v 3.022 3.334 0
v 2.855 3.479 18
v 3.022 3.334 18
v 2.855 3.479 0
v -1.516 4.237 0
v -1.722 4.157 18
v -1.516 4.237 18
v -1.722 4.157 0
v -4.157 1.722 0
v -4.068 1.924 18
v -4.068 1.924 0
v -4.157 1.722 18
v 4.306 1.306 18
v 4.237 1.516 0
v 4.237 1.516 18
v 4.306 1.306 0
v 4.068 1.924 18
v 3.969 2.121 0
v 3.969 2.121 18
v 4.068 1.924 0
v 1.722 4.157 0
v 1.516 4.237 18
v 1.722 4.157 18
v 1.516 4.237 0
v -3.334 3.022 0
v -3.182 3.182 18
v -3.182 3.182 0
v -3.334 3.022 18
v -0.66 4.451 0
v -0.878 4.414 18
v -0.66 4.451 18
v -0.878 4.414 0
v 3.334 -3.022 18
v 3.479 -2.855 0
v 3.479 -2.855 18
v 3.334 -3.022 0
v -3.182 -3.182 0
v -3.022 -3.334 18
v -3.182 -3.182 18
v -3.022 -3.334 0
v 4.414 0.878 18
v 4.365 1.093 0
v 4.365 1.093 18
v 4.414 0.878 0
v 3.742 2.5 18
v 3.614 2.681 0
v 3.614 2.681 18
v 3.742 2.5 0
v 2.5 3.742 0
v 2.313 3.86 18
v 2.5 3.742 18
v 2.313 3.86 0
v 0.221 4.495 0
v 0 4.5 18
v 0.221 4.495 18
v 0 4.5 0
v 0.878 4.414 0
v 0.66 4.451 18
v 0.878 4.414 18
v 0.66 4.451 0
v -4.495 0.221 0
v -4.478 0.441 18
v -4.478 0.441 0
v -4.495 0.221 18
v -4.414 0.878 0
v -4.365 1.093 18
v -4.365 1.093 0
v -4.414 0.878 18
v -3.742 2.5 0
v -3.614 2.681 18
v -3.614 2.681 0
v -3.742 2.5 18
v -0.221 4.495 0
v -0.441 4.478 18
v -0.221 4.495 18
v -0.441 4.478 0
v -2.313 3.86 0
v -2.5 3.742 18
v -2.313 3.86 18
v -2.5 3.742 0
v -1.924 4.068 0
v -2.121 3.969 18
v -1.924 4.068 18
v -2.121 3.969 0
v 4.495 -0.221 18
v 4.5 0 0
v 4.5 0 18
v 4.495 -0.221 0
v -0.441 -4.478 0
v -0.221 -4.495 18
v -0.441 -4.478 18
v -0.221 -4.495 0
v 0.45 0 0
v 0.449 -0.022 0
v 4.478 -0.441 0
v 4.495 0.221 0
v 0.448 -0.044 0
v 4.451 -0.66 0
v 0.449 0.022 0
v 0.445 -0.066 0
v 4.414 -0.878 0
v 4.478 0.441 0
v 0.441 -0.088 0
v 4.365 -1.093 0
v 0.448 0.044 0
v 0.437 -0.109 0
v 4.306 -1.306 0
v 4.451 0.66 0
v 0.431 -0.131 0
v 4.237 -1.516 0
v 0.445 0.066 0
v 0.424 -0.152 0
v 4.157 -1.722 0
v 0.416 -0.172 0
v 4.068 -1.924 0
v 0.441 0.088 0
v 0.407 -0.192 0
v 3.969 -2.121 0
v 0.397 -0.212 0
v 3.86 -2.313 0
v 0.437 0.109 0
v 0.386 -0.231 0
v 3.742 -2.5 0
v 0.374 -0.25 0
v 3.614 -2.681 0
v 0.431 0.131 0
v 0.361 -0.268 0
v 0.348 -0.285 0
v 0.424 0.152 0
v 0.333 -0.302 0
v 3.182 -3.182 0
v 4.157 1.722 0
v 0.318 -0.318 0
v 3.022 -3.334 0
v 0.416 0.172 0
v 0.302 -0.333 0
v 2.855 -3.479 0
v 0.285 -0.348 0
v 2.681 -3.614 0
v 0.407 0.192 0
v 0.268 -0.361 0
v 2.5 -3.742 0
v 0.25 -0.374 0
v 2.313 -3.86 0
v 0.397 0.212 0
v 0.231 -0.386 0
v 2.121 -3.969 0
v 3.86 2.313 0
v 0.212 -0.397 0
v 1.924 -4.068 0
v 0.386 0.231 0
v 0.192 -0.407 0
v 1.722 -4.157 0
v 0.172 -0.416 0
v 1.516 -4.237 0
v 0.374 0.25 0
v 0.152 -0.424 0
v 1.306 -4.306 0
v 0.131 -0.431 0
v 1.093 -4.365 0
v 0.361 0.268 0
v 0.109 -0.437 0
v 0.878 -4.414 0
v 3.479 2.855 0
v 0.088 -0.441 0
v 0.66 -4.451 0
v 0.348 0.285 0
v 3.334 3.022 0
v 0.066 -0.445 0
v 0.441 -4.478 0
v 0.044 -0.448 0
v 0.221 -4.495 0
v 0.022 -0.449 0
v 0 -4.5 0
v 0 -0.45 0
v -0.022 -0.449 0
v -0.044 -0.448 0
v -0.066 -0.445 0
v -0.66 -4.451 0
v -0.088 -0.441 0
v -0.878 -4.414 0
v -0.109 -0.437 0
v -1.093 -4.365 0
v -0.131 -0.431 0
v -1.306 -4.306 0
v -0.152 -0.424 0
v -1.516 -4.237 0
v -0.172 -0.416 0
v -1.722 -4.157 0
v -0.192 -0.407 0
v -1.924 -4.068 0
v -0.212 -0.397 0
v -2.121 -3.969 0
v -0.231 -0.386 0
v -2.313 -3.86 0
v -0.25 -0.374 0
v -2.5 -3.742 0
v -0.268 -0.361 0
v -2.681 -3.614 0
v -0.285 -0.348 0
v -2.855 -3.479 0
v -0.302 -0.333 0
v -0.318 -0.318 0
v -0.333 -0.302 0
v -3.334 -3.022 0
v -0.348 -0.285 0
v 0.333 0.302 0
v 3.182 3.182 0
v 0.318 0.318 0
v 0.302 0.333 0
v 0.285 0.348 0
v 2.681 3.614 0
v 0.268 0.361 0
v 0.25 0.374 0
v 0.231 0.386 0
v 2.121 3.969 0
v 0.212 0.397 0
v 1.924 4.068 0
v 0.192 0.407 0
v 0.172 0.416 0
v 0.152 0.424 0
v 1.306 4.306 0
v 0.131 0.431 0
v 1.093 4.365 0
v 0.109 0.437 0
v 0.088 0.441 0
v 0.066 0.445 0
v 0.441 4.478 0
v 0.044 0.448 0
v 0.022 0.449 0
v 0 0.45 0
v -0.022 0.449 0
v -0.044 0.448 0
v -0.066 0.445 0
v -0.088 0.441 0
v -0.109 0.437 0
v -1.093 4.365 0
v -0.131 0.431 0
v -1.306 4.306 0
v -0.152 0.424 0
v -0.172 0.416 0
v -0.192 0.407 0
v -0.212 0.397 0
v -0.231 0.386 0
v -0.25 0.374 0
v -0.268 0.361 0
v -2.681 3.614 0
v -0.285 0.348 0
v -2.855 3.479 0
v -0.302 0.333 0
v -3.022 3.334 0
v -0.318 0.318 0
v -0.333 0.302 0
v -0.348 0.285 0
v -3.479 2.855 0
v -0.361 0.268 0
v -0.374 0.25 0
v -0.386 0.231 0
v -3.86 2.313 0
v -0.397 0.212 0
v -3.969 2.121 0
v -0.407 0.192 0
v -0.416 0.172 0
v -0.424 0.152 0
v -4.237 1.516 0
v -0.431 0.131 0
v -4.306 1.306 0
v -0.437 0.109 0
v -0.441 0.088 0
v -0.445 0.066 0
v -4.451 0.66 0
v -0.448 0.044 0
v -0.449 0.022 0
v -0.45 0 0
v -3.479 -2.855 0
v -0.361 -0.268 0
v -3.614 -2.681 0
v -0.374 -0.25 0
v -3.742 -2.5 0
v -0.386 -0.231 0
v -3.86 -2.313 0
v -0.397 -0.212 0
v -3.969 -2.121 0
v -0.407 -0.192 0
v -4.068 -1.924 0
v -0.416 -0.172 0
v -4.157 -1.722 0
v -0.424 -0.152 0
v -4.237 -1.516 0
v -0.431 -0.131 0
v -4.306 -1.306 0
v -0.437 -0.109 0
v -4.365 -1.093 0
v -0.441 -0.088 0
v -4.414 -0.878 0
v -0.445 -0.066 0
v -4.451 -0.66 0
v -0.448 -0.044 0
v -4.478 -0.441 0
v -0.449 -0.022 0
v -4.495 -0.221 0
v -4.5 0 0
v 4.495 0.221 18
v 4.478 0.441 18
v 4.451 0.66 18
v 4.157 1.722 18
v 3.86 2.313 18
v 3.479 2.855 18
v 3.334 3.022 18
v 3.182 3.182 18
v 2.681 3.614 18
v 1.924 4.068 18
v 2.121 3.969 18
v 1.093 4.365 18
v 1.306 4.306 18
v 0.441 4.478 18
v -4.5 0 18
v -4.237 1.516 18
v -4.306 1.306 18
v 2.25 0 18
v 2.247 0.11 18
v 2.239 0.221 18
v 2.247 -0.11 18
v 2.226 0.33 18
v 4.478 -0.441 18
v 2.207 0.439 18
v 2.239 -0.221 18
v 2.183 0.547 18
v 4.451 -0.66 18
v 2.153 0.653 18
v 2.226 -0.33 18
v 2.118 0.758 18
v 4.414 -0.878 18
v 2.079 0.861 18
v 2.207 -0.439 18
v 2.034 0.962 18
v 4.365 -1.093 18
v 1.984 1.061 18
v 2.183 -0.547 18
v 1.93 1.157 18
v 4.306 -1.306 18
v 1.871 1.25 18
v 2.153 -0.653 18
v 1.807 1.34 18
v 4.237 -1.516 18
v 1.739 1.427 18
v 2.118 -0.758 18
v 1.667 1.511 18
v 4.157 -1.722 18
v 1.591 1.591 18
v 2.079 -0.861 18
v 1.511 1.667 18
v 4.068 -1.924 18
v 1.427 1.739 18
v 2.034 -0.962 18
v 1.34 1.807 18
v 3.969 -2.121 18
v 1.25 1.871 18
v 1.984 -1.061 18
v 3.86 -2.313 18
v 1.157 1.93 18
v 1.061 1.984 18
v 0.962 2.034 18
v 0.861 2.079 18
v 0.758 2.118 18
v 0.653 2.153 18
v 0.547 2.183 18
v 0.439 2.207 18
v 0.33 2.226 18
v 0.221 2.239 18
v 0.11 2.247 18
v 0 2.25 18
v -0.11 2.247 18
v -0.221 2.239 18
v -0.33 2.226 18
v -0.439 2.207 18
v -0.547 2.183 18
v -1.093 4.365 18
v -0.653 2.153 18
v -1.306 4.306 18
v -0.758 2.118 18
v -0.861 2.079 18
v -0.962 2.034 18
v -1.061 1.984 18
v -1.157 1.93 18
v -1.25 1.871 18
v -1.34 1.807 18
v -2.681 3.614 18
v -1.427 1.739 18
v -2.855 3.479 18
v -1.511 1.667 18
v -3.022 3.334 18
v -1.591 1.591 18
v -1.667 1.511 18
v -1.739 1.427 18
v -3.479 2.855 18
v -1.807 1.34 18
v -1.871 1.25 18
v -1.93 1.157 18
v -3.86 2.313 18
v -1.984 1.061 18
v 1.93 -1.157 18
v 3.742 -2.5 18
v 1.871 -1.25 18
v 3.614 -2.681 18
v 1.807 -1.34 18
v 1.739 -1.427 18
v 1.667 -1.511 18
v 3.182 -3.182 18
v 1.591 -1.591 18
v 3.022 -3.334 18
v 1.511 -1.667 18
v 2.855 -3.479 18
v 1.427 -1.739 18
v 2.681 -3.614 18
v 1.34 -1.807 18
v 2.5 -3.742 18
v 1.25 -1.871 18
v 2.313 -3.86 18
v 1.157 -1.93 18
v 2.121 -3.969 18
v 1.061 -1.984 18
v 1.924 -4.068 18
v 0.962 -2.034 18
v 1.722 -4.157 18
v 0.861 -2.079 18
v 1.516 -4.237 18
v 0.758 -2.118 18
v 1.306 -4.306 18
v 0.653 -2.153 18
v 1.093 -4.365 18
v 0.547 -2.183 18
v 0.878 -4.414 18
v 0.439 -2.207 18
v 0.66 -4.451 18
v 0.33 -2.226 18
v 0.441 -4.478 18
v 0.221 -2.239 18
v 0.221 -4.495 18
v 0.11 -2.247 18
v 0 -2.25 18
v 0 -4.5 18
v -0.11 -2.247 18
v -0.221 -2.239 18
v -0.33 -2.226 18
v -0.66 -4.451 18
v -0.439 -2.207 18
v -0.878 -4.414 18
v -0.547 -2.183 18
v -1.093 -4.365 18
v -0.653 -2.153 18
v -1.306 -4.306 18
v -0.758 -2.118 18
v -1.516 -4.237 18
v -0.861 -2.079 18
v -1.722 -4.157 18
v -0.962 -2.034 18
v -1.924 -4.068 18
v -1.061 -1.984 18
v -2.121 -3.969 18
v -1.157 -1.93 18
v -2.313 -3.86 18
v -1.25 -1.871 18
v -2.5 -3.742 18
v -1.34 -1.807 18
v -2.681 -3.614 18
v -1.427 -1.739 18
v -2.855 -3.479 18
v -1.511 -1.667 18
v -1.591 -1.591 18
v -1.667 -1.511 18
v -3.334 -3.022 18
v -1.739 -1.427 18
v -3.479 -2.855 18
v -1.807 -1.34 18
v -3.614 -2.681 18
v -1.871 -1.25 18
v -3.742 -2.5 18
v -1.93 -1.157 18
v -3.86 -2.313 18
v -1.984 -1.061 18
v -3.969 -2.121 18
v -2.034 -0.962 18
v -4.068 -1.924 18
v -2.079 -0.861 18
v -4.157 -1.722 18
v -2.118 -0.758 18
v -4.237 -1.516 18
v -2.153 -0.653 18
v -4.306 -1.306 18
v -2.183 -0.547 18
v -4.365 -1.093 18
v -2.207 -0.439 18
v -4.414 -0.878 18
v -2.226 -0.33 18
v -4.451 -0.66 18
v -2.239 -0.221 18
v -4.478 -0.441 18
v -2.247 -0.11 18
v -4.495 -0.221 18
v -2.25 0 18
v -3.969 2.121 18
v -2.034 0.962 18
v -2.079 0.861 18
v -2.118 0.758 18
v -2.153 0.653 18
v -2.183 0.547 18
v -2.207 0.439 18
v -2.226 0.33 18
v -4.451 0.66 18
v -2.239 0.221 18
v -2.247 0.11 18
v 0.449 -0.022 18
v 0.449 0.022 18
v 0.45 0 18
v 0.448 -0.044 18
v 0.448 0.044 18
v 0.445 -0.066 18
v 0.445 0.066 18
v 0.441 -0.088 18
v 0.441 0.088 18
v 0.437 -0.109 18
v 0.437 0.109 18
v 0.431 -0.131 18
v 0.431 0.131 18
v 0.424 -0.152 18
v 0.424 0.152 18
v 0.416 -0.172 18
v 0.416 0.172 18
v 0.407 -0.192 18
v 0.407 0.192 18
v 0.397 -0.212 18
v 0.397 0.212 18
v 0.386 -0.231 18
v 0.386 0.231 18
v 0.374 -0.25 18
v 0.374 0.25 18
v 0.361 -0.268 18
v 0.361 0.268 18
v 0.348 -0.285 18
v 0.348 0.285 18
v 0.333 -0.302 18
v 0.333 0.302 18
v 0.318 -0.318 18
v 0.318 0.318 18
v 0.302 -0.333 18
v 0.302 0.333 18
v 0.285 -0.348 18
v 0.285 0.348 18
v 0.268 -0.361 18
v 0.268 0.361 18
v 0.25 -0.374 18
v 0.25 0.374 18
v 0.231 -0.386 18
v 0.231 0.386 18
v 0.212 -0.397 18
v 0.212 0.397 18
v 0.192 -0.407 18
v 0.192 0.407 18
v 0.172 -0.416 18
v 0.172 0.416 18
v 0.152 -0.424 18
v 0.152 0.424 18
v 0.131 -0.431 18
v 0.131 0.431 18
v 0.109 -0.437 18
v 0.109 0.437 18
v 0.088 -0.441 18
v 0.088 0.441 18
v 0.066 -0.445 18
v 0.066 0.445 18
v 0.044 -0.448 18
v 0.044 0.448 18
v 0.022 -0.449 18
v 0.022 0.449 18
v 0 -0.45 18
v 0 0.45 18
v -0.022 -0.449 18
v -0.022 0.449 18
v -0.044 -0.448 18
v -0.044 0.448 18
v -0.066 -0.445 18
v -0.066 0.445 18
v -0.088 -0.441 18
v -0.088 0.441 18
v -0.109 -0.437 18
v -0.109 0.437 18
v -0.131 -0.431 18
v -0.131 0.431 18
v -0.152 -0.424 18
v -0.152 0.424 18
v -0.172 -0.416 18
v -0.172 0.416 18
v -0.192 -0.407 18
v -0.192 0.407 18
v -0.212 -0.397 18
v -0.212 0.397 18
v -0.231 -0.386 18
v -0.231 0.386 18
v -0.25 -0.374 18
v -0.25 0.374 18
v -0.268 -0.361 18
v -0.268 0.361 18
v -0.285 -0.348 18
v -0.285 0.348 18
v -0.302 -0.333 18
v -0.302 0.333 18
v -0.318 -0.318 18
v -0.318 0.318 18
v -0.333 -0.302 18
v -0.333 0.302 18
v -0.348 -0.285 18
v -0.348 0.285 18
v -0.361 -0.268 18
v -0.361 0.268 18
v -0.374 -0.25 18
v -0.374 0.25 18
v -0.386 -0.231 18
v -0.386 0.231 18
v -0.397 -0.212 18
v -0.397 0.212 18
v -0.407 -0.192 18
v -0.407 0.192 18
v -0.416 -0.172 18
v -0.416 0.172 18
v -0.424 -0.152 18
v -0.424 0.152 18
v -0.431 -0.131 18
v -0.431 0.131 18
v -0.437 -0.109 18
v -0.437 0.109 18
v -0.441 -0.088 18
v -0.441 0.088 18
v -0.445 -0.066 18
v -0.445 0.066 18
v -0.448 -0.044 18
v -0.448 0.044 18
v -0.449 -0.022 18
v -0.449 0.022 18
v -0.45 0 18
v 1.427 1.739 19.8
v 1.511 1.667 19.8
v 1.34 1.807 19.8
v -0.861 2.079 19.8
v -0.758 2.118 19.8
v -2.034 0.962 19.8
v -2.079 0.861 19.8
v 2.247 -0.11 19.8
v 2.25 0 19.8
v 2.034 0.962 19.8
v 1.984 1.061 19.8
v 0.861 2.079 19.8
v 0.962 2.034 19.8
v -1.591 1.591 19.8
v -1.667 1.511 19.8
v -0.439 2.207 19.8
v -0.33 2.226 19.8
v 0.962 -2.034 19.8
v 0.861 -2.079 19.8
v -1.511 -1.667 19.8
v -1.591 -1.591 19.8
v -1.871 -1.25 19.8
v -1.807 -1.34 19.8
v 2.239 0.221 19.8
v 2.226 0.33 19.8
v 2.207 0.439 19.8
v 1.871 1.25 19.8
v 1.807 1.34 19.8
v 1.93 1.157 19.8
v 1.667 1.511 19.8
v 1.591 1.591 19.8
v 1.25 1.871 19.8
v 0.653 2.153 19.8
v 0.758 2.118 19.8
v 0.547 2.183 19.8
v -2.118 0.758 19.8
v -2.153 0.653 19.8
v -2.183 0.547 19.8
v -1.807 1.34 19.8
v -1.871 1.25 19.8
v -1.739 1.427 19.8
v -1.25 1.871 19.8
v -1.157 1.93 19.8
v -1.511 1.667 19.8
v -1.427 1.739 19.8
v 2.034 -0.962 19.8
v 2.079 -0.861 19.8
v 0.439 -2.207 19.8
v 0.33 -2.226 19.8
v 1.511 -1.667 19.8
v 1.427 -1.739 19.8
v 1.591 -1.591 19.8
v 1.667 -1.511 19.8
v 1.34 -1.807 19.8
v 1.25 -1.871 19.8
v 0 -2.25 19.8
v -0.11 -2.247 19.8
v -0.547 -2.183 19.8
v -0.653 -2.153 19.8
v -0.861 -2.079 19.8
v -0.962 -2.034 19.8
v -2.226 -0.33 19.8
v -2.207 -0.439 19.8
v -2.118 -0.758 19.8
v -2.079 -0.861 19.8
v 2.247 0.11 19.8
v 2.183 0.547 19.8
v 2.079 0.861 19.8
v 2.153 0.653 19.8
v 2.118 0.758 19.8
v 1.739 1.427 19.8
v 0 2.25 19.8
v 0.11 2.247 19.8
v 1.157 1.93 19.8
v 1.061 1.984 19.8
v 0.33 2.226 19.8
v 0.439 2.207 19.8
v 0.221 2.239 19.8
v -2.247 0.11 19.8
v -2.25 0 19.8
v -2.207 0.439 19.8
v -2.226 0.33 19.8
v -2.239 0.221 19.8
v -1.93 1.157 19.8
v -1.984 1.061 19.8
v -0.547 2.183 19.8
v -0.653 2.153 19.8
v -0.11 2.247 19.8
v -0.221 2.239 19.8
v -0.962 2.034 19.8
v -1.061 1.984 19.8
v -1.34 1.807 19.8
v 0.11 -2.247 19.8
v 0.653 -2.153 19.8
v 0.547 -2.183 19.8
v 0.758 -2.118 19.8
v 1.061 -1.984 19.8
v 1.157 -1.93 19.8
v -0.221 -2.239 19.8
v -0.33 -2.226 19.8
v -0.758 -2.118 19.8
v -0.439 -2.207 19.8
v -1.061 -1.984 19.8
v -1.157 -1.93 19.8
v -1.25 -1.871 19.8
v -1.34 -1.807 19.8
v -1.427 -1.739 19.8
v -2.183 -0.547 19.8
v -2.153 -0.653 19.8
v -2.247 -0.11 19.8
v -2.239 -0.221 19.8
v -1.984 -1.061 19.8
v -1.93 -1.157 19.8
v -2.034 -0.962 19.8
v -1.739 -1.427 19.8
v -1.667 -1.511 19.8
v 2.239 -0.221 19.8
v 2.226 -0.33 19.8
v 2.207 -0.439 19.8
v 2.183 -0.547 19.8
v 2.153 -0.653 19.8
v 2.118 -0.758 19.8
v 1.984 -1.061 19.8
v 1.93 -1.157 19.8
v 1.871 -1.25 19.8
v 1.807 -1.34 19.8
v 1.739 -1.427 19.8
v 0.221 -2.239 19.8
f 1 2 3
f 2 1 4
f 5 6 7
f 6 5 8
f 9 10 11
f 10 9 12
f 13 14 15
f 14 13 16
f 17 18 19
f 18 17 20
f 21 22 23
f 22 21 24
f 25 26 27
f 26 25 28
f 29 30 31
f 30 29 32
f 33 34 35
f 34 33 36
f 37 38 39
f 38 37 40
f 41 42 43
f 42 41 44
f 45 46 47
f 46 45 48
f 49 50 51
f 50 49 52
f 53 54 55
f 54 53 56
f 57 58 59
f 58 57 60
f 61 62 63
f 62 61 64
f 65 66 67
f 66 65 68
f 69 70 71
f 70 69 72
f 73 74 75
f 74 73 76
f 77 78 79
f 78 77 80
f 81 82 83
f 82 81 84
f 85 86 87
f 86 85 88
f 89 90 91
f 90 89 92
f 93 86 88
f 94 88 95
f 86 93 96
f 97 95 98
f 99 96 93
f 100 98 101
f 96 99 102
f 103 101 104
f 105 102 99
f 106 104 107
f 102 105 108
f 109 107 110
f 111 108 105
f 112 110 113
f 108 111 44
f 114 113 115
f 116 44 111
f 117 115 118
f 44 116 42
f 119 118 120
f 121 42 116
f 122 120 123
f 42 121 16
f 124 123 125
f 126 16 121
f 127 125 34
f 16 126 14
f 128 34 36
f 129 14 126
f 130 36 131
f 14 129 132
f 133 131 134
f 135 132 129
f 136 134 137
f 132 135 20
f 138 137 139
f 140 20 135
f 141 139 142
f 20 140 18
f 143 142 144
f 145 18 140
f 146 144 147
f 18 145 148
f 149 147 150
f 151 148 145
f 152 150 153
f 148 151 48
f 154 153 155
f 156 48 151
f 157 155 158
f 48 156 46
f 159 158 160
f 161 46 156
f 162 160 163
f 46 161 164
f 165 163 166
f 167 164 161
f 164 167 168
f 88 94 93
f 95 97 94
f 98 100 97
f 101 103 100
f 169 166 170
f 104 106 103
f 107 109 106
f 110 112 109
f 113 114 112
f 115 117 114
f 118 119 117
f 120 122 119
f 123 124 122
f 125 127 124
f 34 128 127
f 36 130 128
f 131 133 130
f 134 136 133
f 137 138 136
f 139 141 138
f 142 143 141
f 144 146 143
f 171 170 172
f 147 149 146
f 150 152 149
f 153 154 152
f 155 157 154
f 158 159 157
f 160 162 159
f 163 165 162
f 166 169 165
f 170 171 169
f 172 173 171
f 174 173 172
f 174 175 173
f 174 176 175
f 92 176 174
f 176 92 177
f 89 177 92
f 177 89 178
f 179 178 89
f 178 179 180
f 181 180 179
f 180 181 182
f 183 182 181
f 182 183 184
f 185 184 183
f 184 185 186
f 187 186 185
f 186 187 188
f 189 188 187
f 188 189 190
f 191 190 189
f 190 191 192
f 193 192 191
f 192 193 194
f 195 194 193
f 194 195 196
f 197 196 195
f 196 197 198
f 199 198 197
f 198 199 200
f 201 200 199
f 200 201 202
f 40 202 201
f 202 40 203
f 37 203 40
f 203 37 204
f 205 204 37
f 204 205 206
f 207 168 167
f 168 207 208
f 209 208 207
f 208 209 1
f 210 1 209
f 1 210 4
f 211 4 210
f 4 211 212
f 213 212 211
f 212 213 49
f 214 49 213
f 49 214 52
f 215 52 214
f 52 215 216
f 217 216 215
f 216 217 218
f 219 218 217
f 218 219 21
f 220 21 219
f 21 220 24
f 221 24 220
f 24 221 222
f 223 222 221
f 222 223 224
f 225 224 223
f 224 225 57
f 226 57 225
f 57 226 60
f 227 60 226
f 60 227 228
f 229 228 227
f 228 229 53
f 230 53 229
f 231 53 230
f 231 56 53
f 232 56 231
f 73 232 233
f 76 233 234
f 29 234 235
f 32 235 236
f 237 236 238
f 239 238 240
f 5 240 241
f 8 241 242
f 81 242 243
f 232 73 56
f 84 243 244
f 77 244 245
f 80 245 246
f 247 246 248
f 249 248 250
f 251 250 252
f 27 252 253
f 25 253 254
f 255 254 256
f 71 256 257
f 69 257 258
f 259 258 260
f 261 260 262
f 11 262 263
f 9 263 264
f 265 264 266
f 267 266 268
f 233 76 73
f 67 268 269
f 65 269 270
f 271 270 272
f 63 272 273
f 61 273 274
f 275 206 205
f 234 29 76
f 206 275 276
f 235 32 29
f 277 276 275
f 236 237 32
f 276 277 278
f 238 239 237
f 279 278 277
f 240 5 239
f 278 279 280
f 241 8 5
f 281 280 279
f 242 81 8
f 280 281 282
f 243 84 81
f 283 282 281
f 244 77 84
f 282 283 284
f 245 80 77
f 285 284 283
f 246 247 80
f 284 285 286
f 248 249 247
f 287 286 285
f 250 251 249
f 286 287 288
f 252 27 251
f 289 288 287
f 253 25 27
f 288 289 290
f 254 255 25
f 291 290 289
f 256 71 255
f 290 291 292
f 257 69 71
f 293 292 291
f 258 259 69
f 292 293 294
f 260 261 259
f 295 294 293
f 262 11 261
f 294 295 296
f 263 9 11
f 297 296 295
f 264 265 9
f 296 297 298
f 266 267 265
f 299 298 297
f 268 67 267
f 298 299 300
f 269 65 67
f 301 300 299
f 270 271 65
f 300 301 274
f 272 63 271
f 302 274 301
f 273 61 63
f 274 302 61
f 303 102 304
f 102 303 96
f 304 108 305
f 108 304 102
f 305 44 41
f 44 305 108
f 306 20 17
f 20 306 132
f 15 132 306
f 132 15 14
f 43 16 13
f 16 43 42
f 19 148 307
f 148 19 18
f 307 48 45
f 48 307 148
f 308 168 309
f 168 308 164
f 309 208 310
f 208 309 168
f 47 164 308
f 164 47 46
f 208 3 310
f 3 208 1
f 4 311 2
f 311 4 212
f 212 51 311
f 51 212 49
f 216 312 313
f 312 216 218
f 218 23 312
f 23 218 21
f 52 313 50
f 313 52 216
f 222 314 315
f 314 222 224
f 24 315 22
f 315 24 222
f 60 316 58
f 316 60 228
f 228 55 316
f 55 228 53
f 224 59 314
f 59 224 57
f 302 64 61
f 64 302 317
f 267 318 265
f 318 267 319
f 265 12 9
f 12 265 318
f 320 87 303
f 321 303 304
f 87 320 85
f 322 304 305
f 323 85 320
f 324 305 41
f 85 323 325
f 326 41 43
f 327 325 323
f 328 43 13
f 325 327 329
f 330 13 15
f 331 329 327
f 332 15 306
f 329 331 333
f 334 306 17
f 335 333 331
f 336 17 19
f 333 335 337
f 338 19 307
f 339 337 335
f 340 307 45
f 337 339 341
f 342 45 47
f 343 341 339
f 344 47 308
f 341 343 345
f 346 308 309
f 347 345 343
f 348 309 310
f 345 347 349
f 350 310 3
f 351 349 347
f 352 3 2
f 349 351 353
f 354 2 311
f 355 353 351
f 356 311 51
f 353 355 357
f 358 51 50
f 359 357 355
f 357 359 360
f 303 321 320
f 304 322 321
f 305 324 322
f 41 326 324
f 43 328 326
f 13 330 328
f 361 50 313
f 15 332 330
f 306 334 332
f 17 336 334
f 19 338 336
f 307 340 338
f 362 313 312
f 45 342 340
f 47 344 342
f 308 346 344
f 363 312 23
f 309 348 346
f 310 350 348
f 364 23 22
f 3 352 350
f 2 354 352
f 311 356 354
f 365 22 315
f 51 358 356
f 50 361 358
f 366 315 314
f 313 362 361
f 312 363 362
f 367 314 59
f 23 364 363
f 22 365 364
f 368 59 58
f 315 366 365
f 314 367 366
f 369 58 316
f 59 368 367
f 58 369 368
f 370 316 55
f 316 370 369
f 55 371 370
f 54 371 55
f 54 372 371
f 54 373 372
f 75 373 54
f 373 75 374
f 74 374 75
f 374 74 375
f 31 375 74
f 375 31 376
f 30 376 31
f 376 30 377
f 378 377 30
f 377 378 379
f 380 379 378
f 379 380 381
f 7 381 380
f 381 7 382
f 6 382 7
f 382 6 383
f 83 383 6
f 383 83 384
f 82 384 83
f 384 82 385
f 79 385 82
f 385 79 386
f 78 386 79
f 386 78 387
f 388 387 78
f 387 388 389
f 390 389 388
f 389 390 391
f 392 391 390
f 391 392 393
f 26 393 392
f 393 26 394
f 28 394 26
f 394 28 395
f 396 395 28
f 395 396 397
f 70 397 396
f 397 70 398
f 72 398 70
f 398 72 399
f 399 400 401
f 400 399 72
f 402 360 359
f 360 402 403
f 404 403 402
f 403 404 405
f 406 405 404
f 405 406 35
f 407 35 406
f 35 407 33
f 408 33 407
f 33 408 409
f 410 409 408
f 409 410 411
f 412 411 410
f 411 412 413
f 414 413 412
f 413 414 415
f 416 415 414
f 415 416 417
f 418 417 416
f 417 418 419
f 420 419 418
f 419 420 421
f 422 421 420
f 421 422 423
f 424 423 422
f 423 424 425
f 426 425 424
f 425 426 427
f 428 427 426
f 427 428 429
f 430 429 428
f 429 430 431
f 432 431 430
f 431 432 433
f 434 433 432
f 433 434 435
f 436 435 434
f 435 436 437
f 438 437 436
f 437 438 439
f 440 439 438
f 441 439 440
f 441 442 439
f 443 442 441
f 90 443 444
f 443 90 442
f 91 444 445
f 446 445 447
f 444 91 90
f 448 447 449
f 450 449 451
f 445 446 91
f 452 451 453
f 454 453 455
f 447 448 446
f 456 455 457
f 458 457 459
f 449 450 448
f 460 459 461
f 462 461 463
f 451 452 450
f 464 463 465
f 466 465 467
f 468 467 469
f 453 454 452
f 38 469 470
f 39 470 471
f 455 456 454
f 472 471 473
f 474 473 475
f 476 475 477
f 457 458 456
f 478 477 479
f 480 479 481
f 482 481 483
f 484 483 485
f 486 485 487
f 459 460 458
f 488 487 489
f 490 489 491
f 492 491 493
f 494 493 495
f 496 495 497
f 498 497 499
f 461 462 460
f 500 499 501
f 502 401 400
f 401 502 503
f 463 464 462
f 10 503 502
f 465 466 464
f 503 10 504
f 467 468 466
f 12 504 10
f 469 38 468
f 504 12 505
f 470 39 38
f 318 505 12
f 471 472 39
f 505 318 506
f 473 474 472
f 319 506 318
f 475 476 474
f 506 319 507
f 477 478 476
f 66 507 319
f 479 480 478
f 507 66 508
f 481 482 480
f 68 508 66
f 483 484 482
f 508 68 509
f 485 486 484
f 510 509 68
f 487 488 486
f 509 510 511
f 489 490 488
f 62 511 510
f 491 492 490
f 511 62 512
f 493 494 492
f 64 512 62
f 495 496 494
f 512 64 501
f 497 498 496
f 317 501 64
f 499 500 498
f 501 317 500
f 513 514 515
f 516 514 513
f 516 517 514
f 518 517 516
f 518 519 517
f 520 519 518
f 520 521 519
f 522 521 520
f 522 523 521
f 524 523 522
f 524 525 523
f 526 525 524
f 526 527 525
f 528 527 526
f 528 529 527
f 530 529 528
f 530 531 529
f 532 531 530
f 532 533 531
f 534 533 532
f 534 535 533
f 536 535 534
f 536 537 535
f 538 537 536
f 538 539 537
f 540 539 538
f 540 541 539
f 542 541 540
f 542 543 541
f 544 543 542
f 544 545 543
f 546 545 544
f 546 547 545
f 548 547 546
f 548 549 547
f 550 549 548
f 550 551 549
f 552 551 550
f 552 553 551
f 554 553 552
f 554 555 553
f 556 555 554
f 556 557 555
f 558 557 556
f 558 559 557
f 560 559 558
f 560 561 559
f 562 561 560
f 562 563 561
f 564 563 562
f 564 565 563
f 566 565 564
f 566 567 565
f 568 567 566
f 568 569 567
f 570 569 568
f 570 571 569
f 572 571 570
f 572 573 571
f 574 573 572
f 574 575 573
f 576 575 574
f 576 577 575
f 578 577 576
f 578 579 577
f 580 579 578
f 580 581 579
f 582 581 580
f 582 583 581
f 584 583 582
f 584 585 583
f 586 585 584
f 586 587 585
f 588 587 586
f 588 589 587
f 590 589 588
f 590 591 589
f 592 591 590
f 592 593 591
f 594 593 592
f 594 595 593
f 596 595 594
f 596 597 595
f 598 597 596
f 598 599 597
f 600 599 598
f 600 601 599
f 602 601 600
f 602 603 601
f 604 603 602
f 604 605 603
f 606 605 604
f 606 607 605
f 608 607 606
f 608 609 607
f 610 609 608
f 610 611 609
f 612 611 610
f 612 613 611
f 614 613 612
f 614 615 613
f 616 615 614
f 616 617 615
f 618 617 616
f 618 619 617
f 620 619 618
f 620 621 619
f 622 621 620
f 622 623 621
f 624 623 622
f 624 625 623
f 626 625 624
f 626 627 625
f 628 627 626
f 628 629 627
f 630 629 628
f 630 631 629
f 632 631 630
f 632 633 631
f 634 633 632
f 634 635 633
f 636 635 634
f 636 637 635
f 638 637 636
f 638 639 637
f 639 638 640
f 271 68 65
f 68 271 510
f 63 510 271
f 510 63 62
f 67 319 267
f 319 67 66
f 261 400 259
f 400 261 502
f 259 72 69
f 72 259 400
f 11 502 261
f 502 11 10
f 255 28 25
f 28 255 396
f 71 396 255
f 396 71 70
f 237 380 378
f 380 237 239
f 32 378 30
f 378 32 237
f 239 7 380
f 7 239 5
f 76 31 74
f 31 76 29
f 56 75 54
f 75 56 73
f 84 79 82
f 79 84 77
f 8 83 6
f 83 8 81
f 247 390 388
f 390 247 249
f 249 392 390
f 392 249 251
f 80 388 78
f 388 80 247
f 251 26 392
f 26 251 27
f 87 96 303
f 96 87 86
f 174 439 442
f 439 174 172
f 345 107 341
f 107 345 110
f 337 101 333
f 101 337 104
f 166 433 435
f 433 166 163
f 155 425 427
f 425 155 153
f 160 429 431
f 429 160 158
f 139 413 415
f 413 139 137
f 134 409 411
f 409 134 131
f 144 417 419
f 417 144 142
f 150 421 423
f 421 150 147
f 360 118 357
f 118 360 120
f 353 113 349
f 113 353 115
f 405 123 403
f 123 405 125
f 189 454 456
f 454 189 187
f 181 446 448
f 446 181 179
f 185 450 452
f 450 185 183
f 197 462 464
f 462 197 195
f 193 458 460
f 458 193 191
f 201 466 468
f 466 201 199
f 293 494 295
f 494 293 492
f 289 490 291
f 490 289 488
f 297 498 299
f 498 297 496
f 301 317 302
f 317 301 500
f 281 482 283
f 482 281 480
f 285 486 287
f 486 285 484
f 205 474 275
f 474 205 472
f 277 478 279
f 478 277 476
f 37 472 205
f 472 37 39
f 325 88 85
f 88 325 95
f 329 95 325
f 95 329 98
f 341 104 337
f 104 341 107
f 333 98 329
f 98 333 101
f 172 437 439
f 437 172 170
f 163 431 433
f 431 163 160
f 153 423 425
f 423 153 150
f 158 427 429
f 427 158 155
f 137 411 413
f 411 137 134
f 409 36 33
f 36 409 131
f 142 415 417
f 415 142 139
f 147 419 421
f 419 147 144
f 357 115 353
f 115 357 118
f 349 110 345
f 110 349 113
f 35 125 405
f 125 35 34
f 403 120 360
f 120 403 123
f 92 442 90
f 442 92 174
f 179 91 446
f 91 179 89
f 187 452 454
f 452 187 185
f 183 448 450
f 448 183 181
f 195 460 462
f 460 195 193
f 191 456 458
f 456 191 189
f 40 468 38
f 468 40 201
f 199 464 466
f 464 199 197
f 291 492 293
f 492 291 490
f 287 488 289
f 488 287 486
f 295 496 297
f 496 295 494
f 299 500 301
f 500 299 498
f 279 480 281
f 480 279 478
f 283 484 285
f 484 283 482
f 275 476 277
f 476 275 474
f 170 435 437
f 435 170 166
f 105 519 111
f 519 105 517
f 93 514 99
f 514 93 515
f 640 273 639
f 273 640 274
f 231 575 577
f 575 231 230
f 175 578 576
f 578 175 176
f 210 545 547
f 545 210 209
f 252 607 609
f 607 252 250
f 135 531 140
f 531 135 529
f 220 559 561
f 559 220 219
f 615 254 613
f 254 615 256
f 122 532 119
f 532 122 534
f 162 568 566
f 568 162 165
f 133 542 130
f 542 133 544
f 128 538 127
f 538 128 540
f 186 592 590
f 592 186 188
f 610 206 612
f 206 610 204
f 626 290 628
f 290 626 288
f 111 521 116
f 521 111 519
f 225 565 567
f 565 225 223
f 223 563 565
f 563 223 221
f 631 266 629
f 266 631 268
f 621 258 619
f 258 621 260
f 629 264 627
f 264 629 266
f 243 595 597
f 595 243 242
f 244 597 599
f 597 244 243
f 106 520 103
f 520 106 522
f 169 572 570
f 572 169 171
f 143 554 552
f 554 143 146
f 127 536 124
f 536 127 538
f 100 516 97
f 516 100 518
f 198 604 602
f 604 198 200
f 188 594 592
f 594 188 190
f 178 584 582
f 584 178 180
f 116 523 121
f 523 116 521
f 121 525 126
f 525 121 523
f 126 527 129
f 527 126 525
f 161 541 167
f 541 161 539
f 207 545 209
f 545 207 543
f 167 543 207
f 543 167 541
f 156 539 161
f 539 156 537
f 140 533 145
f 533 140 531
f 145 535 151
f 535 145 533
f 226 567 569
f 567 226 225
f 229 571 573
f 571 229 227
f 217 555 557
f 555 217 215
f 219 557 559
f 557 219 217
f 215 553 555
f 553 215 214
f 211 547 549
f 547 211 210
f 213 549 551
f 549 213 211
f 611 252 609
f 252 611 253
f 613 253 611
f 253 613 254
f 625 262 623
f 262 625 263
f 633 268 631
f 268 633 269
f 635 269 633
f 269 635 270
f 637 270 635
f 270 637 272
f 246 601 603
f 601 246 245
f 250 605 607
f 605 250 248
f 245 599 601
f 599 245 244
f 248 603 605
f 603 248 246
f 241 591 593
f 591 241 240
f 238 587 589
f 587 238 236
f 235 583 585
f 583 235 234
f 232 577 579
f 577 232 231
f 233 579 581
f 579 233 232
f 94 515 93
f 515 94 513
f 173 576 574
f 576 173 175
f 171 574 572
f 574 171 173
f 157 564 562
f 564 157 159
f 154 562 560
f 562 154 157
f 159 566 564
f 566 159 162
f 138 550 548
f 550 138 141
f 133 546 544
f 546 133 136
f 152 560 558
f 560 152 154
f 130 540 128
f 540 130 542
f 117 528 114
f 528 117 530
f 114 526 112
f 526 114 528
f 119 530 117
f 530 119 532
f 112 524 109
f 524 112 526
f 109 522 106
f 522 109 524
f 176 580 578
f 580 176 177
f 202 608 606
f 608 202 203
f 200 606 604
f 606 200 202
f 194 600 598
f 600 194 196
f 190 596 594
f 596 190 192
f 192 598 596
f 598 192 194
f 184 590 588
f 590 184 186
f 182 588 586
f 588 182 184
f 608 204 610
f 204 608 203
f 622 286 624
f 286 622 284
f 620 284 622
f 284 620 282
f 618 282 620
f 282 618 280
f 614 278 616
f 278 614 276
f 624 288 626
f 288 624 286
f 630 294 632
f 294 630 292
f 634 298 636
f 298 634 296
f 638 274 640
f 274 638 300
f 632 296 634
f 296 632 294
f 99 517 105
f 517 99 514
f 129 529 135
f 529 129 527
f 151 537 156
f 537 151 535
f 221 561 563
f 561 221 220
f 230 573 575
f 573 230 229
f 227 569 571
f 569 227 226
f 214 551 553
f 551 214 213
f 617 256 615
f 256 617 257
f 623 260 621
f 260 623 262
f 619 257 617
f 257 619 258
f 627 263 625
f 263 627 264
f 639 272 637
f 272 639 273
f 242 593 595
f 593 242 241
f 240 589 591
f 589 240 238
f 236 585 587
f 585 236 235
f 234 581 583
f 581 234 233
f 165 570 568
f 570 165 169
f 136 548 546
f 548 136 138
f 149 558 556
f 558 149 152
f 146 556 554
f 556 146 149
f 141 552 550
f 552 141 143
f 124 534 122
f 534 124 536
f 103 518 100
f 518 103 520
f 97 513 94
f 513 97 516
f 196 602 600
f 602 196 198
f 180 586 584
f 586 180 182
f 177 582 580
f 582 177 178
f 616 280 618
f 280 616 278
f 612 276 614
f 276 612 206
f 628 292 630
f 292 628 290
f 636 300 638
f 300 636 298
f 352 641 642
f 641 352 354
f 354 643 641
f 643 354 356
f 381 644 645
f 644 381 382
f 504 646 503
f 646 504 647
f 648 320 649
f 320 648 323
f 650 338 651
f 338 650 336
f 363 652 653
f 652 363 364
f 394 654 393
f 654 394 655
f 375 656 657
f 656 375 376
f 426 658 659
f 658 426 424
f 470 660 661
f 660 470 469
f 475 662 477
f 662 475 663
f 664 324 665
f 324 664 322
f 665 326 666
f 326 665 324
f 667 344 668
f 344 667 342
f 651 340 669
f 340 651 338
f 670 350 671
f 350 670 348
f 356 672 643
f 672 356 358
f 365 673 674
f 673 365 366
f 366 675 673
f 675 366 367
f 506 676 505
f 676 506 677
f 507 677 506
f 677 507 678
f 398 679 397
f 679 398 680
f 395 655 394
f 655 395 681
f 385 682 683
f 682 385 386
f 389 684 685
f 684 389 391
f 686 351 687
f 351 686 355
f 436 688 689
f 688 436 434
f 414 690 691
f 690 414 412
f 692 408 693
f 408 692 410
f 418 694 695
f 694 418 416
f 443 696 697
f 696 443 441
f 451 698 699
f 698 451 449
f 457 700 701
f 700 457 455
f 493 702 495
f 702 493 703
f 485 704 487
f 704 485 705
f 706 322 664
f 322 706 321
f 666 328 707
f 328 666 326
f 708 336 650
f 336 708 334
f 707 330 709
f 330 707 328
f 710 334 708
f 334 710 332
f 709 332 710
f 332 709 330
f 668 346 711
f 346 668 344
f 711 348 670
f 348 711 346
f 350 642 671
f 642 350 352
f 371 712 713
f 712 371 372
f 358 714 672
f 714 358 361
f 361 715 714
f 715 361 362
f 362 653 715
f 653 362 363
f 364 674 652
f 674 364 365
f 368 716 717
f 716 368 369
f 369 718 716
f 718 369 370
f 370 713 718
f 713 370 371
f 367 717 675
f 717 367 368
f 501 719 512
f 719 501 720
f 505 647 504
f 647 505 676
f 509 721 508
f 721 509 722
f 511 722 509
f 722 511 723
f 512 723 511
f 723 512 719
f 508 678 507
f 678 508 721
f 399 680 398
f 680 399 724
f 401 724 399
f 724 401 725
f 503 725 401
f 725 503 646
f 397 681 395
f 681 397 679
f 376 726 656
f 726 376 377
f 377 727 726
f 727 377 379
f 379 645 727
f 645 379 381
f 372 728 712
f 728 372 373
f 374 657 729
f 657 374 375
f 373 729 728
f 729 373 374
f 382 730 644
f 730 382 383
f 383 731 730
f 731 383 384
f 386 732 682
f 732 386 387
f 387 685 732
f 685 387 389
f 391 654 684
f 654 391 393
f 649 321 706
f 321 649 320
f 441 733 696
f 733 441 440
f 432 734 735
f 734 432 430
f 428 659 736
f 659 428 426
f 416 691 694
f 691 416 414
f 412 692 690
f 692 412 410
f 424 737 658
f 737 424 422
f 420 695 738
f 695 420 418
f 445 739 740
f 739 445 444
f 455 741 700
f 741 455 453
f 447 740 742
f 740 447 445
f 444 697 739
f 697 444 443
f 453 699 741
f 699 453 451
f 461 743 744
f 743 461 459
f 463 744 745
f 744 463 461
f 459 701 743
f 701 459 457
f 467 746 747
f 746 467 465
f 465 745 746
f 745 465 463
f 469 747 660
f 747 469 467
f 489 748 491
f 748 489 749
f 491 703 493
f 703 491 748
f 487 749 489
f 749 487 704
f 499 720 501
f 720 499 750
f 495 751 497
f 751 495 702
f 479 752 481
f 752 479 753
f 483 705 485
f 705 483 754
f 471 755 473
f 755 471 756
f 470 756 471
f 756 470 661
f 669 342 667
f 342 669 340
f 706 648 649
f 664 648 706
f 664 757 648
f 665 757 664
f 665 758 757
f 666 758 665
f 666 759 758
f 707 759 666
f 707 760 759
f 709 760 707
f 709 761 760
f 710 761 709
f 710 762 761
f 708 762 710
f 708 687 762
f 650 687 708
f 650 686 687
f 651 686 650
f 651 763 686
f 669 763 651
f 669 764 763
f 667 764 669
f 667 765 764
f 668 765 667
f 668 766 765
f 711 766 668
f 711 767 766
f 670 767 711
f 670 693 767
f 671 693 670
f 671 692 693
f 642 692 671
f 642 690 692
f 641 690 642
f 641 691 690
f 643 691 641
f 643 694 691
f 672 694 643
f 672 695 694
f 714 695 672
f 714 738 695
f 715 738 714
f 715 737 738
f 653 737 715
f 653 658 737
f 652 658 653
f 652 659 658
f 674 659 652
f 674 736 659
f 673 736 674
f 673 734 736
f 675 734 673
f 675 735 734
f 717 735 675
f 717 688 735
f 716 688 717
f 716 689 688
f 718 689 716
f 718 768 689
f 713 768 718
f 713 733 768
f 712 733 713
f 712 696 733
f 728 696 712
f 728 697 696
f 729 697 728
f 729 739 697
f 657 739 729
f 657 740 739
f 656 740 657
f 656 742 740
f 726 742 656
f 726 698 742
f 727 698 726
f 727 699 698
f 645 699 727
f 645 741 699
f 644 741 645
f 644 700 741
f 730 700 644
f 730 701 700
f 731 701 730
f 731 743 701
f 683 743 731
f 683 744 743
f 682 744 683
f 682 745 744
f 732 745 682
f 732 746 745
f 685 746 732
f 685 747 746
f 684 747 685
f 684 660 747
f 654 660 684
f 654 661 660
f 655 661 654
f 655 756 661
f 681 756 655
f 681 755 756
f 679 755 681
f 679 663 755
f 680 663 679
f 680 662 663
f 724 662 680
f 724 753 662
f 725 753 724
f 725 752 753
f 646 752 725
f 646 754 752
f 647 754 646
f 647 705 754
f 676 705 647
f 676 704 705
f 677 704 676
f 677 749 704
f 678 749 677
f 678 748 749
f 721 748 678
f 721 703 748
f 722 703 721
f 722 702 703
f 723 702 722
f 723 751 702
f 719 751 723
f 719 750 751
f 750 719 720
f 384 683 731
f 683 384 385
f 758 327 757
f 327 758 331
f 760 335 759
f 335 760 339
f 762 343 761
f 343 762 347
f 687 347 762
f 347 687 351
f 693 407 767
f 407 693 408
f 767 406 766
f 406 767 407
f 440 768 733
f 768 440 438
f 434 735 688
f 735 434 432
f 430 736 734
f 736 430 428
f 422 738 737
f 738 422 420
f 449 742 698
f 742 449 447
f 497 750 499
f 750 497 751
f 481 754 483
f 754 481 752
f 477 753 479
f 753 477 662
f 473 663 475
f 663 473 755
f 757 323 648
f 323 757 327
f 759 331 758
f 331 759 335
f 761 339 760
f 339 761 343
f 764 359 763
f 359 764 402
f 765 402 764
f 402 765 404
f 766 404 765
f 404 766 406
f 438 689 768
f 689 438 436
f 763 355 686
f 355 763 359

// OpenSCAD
// Generated by SolidPython 1.1.3 on 2023-04-08 02:27:49
$fn =128;


union() {
	difference() {
		cylinder(h = 18, r = 4.5000000000);
		cylinder(h = 18, r = 0.4500000000);
	}
	translate(v = [0, 0, 18]) {
		cylinder(h = 1.8000000000, r = 2.2500000000);
	}
}
